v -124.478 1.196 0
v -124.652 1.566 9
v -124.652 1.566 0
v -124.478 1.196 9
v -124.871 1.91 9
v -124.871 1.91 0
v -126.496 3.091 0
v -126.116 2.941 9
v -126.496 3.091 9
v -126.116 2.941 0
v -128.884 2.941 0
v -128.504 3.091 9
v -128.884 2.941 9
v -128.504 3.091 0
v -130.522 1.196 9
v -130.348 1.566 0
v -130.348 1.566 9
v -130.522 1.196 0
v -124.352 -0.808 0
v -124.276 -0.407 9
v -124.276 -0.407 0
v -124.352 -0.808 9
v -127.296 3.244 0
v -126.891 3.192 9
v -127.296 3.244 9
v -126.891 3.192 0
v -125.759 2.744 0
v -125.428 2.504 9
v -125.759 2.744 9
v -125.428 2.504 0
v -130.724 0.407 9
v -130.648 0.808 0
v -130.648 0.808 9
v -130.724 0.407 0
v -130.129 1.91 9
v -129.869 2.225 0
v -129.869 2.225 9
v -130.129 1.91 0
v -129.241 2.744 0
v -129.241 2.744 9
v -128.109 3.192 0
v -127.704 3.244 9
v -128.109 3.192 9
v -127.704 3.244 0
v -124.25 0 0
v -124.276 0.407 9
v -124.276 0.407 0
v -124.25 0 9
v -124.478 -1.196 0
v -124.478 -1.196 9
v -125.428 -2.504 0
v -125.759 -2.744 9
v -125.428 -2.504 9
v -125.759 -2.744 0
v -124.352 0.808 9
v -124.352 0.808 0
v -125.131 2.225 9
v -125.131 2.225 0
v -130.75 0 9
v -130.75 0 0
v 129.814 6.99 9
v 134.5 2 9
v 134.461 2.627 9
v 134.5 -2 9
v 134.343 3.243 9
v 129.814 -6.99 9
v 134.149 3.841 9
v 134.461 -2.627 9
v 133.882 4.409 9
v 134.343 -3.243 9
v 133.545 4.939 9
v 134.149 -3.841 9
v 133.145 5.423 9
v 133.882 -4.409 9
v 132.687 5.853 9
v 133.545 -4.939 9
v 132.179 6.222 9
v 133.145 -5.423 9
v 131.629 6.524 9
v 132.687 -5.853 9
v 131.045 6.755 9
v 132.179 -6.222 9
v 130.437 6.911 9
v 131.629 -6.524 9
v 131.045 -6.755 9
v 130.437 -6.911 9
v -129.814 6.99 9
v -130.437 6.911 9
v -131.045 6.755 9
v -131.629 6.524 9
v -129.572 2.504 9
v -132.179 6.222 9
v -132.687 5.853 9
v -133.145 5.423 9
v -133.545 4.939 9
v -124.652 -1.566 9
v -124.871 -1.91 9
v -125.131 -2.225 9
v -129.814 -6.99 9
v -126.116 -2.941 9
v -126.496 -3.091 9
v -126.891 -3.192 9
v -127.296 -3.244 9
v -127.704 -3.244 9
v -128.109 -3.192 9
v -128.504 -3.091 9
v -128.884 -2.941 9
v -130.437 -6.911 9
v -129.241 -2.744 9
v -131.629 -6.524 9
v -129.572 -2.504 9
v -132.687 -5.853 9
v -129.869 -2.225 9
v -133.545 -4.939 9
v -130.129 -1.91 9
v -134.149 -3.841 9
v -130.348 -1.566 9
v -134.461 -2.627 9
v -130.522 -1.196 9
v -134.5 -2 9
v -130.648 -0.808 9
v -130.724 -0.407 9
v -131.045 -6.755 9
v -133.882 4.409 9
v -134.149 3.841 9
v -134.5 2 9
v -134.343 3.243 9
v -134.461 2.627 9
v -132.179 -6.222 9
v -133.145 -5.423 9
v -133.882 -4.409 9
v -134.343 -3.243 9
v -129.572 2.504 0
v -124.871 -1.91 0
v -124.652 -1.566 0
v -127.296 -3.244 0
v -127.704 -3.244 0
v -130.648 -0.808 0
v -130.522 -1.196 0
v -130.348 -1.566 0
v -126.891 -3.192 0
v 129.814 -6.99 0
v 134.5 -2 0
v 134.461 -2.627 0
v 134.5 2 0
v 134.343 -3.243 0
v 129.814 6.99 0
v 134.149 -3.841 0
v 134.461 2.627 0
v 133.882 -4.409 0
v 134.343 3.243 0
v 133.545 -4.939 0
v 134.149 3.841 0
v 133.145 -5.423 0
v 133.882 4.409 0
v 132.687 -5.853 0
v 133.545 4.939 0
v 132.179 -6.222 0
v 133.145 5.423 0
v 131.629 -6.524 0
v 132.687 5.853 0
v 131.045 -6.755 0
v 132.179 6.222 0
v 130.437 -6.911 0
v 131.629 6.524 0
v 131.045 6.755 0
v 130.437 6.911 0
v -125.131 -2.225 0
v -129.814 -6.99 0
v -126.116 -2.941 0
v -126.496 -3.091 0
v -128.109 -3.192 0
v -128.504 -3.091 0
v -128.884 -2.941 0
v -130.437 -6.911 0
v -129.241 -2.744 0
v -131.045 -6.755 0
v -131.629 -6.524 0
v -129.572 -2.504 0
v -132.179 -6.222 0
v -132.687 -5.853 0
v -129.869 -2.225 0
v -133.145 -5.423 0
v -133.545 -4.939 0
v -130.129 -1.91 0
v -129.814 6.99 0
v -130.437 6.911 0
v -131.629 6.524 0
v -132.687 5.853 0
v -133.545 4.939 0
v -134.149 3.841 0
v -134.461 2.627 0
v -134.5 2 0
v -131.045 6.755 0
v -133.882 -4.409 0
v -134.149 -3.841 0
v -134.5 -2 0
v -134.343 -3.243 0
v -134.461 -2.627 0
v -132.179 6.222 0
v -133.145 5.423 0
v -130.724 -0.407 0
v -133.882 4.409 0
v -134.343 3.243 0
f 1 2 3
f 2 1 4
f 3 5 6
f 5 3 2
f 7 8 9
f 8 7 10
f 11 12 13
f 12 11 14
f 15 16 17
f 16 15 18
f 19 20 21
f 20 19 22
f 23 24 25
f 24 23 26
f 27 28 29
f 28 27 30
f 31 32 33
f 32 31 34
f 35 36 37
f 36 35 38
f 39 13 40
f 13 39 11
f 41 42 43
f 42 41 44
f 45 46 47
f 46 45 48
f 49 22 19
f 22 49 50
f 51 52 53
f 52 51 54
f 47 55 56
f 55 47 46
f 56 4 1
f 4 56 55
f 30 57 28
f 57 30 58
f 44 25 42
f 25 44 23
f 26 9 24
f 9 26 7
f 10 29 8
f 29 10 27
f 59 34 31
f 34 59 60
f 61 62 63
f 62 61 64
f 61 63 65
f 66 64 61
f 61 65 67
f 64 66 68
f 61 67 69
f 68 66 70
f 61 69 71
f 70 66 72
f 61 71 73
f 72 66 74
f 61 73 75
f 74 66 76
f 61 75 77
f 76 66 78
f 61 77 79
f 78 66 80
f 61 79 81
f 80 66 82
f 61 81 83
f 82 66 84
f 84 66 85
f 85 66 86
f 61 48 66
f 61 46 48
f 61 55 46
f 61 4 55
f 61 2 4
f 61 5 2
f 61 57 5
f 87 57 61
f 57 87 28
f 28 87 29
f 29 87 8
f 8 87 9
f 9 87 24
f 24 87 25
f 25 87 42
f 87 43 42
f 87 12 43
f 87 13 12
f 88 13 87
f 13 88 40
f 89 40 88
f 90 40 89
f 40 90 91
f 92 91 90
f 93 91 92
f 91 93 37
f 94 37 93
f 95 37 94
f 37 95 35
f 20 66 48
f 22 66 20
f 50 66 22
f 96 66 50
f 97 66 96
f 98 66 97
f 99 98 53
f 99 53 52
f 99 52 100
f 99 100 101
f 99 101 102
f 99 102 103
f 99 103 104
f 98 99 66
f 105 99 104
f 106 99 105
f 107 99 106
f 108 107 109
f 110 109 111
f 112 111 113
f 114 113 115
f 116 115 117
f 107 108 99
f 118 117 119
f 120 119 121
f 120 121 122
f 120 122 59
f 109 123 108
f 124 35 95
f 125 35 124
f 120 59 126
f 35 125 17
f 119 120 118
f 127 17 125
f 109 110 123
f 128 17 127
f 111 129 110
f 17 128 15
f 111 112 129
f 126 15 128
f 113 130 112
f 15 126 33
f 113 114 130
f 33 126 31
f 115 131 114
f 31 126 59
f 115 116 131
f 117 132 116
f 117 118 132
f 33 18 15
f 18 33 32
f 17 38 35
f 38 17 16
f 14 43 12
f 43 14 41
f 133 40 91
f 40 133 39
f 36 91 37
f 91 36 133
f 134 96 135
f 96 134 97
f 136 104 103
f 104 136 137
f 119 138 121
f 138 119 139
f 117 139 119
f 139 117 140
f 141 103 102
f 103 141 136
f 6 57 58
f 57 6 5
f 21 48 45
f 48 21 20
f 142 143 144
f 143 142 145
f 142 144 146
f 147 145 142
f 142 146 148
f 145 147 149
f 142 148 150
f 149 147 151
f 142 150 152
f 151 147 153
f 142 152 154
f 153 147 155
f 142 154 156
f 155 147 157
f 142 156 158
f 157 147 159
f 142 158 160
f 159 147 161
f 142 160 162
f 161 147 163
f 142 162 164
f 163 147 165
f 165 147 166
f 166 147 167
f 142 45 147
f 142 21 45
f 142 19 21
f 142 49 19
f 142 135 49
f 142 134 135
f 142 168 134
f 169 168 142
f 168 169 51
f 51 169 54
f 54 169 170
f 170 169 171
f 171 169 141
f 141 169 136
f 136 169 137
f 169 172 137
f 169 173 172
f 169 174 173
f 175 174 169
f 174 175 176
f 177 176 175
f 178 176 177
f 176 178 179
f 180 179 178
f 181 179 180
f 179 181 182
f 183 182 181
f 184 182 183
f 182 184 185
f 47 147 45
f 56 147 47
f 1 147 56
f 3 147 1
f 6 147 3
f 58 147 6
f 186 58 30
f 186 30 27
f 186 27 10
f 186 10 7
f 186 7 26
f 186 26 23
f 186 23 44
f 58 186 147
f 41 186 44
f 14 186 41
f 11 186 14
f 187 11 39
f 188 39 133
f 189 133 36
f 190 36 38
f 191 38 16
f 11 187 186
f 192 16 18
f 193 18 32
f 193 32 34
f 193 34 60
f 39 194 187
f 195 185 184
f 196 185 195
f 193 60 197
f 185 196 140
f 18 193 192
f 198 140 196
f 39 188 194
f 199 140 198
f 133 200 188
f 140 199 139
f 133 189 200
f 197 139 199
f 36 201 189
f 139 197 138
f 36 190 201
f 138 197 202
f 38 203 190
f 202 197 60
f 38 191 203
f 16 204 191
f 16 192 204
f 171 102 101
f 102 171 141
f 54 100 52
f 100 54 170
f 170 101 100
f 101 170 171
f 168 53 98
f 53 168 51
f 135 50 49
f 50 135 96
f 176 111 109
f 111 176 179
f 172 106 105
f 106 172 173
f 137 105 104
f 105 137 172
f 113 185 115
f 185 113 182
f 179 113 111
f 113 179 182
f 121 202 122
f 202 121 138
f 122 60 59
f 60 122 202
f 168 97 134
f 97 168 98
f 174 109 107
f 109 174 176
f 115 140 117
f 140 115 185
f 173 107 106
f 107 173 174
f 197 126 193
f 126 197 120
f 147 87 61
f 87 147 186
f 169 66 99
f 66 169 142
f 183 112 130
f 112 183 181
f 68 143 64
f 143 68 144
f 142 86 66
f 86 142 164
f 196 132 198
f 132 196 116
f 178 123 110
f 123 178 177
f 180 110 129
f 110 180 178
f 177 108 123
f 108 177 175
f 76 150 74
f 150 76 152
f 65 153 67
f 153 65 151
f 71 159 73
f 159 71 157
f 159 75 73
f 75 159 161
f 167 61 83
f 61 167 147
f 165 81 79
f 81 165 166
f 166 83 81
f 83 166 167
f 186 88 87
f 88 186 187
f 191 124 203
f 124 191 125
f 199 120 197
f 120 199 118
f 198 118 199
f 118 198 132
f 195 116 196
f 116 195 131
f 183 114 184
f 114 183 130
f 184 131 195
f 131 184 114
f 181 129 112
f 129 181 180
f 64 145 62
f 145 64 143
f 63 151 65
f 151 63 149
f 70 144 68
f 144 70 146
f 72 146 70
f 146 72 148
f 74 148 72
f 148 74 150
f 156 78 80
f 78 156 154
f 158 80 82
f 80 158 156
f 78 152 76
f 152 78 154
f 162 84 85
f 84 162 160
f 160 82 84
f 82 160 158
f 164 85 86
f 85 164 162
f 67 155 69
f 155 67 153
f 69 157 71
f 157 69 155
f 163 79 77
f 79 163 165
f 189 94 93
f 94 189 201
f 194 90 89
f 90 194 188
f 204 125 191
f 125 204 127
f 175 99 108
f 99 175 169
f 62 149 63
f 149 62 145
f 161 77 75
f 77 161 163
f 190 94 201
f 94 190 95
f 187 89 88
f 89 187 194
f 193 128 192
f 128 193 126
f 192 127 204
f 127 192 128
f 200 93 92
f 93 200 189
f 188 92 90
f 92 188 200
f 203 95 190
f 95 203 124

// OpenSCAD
$fn = 50;


difference() {
	union() {
		hull() {
			translate(v = [-129.5000000000, 2.0000000000, 0]) {
				cylinder(h = 9, r = 5);
			}
			translate(v = [129.5000000000, 2.0000000000, 0]) {
				cylinder(h = 9, r = 5);
			}
			translate(v = [-129.5000000000, -2.0000000000, 0]) {
				cylinder(h = 9, r = 5);
			}
			translate(v = [129.5000000000, -2.0000000000, 0]) {
				cylinder(h = 9, r = 5);
			}
		}
	}
	union() {
		translate(v = [-127.5000000000, 0.0000000000, 0]) {
			cylinder(h = 9, r = 3.2500000000);
		}
		translate(v = [-127.5000000000, 0.0000000000, 0]) {
			cylinder(h = 9, r = 1.8000000000);
		}
		translate(v = [-127.5000000000, 0.0000000000, 0]) {
			cylinder(h = 9, r = 1.8000000000);
		}
		translate(v = [-127.5000000000, 0.0000000000, 0]) {
			cylinder(h = 9, r = 1.8000000000);
		}
	}
}
